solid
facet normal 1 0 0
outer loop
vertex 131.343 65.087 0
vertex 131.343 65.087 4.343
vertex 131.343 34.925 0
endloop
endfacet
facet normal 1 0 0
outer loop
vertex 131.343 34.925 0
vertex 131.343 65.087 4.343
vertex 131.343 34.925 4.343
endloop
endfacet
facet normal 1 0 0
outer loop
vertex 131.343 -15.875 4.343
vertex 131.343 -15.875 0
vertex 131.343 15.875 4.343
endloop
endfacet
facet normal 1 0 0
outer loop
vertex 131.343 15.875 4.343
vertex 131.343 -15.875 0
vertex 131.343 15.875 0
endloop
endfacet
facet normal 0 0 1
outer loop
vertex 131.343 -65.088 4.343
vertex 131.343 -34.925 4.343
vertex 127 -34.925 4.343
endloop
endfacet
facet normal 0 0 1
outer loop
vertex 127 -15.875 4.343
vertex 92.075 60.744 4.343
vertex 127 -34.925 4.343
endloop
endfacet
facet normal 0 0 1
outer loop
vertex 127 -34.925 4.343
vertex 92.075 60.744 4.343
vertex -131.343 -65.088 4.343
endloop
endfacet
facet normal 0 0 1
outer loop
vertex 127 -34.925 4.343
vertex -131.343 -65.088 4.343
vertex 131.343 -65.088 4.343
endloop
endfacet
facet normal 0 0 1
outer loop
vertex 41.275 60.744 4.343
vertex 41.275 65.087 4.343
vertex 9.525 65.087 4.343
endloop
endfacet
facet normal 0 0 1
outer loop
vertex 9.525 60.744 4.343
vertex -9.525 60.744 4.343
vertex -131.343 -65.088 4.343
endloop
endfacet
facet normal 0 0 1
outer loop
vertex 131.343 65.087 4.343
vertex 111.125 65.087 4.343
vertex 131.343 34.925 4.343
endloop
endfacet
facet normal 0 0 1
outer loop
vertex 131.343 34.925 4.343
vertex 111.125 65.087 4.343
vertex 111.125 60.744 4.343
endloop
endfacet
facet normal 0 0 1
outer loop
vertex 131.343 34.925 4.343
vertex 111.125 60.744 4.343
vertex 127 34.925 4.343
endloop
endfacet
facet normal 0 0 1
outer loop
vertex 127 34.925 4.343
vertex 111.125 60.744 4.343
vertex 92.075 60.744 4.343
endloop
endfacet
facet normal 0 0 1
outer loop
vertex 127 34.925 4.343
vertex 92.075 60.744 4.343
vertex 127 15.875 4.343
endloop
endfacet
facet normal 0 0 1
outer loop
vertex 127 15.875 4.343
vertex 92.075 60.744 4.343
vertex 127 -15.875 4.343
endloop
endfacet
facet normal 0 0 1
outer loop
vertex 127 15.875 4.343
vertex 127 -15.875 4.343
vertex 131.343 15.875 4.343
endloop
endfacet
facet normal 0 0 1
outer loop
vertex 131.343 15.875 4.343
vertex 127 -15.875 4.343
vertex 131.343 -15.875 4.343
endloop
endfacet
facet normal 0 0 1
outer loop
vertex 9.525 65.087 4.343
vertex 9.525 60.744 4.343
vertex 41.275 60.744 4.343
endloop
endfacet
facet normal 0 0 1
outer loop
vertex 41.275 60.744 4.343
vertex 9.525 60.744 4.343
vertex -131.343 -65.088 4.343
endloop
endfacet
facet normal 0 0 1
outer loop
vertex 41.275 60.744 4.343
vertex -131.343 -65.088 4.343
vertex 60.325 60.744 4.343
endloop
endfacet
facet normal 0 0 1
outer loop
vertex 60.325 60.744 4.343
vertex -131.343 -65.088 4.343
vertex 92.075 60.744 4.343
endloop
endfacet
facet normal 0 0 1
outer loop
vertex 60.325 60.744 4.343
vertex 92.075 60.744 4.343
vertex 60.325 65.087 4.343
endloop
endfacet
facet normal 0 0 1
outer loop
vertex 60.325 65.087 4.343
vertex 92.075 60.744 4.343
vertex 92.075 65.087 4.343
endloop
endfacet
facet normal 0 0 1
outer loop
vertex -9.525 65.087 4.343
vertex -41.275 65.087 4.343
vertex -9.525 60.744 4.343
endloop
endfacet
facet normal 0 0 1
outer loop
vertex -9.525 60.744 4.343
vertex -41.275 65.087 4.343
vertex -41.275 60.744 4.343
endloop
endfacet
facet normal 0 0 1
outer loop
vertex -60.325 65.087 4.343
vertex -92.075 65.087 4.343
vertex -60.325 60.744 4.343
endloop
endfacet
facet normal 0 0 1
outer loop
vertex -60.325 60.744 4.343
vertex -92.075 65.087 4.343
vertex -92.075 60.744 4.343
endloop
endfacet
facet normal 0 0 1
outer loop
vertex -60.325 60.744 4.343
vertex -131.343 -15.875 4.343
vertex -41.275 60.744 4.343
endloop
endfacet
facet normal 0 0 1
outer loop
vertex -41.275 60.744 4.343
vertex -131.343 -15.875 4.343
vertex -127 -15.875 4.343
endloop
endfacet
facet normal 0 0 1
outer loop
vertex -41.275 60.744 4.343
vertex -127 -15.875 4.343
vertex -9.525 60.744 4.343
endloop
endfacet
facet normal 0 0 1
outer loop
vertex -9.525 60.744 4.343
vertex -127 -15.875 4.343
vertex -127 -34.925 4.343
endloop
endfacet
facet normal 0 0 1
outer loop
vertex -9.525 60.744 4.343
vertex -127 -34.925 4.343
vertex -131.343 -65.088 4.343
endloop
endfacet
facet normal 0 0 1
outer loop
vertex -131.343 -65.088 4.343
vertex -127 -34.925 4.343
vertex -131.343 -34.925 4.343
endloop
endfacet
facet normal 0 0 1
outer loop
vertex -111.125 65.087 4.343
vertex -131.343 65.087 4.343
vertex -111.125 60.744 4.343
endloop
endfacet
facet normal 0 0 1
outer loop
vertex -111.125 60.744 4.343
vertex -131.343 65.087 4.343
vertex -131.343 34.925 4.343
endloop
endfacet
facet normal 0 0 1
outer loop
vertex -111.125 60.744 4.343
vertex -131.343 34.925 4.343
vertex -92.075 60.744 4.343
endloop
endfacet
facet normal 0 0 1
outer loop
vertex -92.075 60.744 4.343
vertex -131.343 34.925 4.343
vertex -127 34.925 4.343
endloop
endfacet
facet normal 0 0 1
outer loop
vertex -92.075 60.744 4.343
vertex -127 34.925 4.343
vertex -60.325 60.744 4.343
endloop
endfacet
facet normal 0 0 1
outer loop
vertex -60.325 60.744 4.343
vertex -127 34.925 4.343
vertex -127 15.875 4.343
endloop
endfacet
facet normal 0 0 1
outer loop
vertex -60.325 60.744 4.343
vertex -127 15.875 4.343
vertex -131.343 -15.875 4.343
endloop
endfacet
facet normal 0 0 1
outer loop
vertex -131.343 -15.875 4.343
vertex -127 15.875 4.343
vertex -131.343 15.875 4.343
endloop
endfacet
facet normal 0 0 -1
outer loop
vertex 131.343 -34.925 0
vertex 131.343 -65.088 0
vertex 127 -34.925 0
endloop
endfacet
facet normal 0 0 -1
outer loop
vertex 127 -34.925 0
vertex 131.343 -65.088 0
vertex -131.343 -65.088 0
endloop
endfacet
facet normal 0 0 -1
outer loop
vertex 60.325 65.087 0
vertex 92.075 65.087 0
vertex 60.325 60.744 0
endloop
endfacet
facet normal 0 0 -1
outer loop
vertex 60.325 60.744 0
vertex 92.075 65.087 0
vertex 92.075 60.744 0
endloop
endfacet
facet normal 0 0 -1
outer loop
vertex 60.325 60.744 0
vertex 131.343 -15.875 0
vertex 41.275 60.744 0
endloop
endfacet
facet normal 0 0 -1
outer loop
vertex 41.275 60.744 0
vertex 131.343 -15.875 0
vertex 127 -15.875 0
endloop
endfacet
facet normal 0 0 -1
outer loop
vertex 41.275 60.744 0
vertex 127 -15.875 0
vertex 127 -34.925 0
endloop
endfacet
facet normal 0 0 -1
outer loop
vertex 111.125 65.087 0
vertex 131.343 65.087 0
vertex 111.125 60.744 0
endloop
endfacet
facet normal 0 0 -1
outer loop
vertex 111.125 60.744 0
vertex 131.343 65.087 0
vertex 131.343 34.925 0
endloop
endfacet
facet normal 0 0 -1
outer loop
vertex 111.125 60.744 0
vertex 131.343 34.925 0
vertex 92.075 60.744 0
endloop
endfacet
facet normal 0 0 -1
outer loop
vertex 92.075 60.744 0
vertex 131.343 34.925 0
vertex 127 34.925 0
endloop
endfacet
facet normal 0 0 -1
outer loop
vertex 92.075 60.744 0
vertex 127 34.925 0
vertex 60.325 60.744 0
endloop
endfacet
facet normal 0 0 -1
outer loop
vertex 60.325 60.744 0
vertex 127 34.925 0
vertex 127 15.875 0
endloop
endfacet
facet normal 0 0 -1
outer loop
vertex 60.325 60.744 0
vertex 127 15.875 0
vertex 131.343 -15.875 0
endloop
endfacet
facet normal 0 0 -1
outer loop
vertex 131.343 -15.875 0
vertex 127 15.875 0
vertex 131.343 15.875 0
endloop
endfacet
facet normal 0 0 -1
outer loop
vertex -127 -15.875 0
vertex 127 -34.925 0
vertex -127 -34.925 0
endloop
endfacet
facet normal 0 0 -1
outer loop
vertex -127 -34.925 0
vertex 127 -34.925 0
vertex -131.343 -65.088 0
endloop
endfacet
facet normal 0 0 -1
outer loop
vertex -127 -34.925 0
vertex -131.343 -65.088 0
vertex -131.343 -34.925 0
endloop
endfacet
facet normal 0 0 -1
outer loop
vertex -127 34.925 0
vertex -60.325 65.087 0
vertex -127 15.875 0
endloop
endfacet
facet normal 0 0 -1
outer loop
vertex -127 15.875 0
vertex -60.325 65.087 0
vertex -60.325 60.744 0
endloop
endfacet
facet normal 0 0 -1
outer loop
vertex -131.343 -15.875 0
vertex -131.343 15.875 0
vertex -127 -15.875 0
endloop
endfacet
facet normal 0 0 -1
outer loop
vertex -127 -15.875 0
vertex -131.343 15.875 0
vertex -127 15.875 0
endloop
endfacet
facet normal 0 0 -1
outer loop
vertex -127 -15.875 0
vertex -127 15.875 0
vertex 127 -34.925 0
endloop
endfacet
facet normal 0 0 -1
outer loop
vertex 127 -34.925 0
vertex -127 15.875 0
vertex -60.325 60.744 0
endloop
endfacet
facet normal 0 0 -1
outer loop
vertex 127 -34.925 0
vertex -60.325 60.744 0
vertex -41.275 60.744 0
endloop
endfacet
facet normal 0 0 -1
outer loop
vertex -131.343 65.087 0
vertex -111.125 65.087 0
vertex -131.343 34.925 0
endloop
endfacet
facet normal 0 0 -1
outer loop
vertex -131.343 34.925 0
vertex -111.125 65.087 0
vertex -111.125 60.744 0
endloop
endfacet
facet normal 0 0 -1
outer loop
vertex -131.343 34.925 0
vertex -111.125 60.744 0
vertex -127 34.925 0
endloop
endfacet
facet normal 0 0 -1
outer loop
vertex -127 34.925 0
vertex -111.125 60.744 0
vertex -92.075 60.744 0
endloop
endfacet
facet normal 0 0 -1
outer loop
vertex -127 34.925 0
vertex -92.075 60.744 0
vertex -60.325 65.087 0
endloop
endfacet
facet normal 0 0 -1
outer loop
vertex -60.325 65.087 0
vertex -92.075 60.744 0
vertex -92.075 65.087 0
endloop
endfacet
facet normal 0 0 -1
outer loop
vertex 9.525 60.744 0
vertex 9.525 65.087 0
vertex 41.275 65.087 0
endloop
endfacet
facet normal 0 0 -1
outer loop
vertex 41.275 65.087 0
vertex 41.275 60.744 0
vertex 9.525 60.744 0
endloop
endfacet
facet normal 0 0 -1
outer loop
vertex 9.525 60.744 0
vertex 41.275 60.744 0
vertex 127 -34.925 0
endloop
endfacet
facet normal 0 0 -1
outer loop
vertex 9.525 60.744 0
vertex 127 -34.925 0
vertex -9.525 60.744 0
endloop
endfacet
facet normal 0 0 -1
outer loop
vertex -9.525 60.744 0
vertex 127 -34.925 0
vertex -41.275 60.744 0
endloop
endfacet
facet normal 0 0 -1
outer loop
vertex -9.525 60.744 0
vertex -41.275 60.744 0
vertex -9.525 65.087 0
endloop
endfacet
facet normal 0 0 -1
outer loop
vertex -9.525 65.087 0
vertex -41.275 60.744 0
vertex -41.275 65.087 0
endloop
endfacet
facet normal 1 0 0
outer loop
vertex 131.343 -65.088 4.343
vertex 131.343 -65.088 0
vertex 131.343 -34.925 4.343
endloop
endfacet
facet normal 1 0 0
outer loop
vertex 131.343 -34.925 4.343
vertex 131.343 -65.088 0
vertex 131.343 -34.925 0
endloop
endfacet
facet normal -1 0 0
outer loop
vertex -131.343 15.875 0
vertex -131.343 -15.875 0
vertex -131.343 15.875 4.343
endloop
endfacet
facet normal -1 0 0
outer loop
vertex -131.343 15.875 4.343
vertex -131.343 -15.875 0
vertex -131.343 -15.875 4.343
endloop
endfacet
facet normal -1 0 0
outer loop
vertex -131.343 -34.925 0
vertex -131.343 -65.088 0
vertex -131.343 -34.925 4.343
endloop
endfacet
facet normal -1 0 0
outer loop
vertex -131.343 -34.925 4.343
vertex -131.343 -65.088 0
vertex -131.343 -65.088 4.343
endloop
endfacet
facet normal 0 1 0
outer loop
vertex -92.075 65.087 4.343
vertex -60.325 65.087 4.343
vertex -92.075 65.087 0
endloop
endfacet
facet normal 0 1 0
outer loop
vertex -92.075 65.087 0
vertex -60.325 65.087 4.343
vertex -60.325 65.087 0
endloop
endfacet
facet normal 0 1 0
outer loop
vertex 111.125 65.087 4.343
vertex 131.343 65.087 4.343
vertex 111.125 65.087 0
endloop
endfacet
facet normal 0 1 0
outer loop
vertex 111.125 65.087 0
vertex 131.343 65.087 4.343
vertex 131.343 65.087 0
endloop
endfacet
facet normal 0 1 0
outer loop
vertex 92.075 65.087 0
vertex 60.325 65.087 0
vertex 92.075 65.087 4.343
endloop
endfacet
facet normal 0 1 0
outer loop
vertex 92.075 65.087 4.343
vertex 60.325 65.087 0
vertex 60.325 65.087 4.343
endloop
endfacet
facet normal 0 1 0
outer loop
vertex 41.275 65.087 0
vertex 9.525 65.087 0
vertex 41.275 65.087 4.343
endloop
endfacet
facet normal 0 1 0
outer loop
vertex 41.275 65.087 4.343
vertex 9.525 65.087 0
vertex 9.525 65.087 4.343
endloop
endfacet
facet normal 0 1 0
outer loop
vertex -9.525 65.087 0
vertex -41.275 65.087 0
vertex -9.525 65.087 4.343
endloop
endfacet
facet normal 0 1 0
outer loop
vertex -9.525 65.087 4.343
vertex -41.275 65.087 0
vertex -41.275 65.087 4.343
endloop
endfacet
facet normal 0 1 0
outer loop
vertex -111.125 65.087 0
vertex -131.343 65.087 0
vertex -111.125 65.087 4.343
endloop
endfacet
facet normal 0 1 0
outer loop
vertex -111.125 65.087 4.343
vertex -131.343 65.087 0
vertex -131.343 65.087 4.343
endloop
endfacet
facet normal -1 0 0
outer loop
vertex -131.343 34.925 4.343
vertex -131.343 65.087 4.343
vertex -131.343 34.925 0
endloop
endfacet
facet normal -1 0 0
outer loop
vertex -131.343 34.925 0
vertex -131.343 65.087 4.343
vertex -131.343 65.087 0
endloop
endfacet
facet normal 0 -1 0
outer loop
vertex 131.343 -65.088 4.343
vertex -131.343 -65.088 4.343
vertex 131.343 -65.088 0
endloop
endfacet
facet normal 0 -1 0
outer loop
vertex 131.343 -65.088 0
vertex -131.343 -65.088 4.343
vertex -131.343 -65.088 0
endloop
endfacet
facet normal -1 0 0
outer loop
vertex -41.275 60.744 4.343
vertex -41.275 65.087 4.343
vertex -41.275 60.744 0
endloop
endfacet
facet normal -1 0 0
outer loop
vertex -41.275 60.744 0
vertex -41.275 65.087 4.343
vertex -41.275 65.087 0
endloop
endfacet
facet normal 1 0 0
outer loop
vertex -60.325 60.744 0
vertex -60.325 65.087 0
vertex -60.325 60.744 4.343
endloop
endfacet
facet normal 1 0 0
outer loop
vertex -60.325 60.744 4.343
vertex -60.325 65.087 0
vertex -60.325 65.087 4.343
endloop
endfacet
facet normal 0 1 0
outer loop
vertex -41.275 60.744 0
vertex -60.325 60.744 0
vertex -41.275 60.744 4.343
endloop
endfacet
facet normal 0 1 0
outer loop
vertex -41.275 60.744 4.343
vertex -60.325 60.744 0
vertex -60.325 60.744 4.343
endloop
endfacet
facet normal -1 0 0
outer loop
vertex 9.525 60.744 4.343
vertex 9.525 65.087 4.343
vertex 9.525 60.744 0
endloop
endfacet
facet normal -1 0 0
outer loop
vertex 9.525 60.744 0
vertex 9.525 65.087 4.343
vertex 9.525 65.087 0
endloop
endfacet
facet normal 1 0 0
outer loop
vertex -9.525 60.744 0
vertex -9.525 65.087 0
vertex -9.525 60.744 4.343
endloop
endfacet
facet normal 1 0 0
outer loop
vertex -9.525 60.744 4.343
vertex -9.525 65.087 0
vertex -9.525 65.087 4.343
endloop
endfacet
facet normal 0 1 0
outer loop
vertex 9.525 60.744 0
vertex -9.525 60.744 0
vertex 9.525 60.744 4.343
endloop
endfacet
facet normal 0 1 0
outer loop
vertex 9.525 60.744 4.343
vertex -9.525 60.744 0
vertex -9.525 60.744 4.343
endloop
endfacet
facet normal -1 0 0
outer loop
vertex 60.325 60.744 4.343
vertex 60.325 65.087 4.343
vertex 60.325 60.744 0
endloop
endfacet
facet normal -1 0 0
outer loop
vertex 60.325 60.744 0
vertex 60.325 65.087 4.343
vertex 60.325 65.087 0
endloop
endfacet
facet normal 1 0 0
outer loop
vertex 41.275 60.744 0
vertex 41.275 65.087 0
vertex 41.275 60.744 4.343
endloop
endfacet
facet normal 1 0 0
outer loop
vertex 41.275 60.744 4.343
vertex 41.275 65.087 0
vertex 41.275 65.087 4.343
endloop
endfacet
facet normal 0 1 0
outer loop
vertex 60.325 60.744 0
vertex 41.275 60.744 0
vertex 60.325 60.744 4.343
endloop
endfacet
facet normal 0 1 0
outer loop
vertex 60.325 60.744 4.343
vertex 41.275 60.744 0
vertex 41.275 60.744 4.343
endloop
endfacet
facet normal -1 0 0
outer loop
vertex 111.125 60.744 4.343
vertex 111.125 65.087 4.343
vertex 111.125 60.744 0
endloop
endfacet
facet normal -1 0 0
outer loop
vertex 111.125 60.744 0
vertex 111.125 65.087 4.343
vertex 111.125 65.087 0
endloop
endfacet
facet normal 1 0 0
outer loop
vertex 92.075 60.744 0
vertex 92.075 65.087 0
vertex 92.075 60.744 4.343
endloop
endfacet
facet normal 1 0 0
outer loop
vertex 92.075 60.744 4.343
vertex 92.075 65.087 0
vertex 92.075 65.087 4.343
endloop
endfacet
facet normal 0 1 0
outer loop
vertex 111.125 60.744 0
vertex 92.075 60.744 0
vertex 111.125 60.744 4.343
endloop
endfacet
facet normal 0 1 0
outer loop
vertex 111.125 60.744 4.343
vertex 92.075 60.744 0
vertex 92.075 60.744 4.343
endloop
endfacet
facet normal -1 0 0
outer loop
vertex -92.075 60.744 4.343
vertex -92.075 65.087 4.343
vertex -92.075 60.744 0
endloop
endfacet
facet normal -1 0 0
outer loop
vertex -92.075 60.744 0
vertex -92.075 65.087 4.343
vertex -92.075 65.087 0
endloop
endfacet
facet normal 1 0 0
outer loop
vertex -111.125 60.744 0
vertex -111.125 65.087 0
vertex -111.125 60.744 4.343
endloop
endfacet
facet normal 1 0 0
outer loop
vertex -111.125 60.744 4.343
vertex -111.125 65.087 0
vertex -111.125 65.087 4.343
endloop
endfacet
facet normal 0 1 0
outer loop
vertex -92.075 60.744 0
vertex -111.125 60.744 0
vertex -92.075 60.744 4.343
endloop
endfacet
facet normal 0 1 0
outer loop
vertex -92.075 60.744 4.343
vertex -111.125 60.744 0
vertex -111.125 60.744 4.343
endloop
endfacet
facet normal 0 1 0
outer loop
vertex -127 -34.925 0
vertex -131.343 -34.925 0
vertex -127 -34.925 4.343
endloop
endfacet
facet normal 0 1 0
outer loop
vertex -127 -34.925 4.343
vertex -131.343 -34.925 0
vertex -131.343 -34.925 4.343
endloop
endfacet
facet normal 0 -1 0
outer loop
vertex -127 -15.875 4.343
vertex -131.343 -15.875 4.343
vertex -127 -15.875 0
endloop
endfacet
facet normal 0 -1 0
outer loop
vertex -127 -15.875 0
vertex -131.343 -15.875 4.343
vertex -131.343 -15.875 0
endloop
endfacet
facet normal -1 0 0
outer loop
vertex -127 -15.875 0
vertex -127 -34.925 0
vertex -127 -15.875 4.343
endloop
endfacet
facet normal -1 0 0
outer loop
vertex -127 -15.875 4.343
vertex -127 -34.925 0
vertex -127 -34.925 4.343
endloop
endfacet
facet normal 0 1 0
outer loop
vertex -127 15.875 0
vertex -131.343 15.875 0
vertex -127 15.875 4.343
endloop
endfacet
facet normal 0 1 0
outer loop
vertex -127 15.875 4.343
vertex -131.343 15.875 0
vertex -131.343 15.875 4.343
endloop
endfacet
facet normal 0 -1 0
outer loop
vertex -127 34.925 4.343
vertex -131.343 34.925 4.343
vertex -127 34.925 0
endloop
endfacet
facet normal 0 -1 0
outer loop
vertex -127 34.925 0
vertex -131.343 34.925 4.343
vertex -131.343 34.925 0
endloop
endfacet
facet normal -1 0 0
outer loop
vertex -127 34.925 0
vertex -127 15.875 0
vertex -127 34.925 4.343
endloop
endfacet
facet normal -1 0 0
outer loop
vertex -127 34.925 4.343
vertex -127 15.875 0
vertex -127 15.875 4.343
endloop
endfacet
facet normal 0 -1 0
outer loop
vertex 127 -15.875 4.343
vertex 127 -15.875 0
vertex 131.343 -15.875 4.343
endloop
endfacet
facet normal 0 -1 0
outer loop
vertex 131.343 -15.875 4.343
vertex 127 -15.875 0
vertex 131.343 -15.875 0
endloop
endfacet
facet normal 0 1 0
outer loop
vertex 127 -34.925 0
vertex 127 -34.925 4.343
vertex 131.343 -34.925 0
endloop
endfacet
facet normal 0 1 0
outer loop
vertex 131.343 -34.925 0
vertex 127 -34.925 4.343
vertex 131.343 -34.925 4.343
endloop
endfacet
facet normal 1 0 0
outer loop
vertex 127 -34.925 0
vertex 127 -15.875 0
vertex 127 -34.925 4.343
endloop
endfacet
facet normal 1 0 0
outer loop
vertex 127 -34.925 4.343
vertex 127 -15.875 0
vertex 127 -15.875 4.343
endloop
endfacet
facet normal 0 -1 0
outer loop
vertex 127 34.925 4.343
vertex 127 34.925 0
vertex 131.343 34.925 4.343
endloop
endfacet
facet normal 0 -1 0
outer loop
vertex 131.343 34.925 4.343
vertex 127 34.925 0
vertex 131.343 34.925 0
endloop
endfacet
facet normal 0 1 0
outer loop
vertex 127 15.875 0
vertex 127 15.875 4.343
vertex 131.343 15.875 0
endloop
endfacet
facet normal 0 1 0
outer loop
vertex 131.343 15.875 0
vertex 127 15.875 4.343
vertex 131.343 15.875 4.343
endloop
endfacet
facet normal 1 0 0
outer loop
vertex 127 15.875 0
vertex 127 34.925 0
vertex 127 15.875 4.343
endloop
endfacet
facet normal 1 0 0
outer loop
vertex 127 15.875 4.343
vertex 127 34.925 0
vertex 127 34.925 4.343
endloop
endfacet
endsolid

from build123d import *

# Parameters (mm, degrees)
SKETCH1_W           = 262.6868
SKETCH1_H           = 130.175
BOSS_EXTRUDE1_DEPTH = 4.3434
SKETCH2_W           = 19.05
SKETCH2_H           = 8.6868
CUT_EXTRUDE1_DEPTH  = 147.650388692
SKETCH3_W           = 8.6868
SKETCH3_H           = 19.05
CUT_EXTRUDE3_DEPTH  = 147.650388692


with BuildPart() as part:
    # Sketch1 → Boss-Extrude1 (new body)
    with BuildSketch(Plane.XY):
        Rectangle(SKETCH1_W, SKETCH1_H)
    extrude(amount=BOSS_EXTRUDE1_DEPTH)

    # Sketch2 → Cut-Extrude1 (cut, through all)
    with BuildSketch(Plane.XY.offset(4.3434)):
        with Locations((-50.8, 65.0875)):
            Rectangle(SKETCH2_W, SKETCH2_H)
        with Locations((0, 65.0875)):
            Rectangle(SKETCH2_W, SKETCH2_H)
        with Locations((50.8, 65.0875)):
            Rectangle(SKETCH2_W, SKETCH2_H)
        with Locations((101.6, 65.0875)):
            Rectangle(SKETCH2_W, SKETCH2_H)
        with Locations((-101.6, 65.0875)):
            Rectangle(SKETCH2_W, SKETCH2_H)
    extrude(amount=-CUT_EXTRUDE1_DEPTH, mode=Mode.SUBTRACT)

    # Sketch3 → Cut-Extrude3 (cut, through all)
    with BuildSketch(Plane.XY.offset(4.3434)):
        with Locations((-131.3434, -25.4)):
            Rectangle(SKETCH3_W, SKETCH3_H)
        with Locations((-131.3434, 25.4)):
            Rectangle(SKETCH3_W, SKETCH3_H)
    cut_extrude3 = extrude(amount=-CUT_EXTRUDE3_DEPTH, mode=Mode.SUBTRACT)

    # Mirror1: Cut-Extrude3 across plane
    add(cut_extrude3.mirror(Plane(origin=(0, 0, 0), x_dir=(0, 0, 1), z_dir=(1, 0, 0))), mode=Mode.SUBTRACT)


solid = part.part
